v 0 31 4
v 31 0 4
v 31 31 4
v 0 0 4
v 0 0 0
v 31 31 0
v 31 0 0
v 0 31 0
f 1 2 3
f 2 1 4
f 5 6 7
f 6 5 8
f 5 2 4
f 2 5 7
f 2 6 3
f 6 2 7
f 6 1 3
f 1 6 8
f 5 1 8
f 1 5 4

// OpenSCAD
/* Warning, this is a very basic generator with a lot of approximation 
input data : [BBGA, E5C, 31x31x4.0mm, 896, , A, C04-25530A]
generated by com.zoubworld.electronics.cad.model3d.Basic
Date : Sun Feb 15 10:50:49 CET 2026
*/

//body
color("black")
translate([0,0,0])
cube([31.0,31.0,4.0], center=false);
